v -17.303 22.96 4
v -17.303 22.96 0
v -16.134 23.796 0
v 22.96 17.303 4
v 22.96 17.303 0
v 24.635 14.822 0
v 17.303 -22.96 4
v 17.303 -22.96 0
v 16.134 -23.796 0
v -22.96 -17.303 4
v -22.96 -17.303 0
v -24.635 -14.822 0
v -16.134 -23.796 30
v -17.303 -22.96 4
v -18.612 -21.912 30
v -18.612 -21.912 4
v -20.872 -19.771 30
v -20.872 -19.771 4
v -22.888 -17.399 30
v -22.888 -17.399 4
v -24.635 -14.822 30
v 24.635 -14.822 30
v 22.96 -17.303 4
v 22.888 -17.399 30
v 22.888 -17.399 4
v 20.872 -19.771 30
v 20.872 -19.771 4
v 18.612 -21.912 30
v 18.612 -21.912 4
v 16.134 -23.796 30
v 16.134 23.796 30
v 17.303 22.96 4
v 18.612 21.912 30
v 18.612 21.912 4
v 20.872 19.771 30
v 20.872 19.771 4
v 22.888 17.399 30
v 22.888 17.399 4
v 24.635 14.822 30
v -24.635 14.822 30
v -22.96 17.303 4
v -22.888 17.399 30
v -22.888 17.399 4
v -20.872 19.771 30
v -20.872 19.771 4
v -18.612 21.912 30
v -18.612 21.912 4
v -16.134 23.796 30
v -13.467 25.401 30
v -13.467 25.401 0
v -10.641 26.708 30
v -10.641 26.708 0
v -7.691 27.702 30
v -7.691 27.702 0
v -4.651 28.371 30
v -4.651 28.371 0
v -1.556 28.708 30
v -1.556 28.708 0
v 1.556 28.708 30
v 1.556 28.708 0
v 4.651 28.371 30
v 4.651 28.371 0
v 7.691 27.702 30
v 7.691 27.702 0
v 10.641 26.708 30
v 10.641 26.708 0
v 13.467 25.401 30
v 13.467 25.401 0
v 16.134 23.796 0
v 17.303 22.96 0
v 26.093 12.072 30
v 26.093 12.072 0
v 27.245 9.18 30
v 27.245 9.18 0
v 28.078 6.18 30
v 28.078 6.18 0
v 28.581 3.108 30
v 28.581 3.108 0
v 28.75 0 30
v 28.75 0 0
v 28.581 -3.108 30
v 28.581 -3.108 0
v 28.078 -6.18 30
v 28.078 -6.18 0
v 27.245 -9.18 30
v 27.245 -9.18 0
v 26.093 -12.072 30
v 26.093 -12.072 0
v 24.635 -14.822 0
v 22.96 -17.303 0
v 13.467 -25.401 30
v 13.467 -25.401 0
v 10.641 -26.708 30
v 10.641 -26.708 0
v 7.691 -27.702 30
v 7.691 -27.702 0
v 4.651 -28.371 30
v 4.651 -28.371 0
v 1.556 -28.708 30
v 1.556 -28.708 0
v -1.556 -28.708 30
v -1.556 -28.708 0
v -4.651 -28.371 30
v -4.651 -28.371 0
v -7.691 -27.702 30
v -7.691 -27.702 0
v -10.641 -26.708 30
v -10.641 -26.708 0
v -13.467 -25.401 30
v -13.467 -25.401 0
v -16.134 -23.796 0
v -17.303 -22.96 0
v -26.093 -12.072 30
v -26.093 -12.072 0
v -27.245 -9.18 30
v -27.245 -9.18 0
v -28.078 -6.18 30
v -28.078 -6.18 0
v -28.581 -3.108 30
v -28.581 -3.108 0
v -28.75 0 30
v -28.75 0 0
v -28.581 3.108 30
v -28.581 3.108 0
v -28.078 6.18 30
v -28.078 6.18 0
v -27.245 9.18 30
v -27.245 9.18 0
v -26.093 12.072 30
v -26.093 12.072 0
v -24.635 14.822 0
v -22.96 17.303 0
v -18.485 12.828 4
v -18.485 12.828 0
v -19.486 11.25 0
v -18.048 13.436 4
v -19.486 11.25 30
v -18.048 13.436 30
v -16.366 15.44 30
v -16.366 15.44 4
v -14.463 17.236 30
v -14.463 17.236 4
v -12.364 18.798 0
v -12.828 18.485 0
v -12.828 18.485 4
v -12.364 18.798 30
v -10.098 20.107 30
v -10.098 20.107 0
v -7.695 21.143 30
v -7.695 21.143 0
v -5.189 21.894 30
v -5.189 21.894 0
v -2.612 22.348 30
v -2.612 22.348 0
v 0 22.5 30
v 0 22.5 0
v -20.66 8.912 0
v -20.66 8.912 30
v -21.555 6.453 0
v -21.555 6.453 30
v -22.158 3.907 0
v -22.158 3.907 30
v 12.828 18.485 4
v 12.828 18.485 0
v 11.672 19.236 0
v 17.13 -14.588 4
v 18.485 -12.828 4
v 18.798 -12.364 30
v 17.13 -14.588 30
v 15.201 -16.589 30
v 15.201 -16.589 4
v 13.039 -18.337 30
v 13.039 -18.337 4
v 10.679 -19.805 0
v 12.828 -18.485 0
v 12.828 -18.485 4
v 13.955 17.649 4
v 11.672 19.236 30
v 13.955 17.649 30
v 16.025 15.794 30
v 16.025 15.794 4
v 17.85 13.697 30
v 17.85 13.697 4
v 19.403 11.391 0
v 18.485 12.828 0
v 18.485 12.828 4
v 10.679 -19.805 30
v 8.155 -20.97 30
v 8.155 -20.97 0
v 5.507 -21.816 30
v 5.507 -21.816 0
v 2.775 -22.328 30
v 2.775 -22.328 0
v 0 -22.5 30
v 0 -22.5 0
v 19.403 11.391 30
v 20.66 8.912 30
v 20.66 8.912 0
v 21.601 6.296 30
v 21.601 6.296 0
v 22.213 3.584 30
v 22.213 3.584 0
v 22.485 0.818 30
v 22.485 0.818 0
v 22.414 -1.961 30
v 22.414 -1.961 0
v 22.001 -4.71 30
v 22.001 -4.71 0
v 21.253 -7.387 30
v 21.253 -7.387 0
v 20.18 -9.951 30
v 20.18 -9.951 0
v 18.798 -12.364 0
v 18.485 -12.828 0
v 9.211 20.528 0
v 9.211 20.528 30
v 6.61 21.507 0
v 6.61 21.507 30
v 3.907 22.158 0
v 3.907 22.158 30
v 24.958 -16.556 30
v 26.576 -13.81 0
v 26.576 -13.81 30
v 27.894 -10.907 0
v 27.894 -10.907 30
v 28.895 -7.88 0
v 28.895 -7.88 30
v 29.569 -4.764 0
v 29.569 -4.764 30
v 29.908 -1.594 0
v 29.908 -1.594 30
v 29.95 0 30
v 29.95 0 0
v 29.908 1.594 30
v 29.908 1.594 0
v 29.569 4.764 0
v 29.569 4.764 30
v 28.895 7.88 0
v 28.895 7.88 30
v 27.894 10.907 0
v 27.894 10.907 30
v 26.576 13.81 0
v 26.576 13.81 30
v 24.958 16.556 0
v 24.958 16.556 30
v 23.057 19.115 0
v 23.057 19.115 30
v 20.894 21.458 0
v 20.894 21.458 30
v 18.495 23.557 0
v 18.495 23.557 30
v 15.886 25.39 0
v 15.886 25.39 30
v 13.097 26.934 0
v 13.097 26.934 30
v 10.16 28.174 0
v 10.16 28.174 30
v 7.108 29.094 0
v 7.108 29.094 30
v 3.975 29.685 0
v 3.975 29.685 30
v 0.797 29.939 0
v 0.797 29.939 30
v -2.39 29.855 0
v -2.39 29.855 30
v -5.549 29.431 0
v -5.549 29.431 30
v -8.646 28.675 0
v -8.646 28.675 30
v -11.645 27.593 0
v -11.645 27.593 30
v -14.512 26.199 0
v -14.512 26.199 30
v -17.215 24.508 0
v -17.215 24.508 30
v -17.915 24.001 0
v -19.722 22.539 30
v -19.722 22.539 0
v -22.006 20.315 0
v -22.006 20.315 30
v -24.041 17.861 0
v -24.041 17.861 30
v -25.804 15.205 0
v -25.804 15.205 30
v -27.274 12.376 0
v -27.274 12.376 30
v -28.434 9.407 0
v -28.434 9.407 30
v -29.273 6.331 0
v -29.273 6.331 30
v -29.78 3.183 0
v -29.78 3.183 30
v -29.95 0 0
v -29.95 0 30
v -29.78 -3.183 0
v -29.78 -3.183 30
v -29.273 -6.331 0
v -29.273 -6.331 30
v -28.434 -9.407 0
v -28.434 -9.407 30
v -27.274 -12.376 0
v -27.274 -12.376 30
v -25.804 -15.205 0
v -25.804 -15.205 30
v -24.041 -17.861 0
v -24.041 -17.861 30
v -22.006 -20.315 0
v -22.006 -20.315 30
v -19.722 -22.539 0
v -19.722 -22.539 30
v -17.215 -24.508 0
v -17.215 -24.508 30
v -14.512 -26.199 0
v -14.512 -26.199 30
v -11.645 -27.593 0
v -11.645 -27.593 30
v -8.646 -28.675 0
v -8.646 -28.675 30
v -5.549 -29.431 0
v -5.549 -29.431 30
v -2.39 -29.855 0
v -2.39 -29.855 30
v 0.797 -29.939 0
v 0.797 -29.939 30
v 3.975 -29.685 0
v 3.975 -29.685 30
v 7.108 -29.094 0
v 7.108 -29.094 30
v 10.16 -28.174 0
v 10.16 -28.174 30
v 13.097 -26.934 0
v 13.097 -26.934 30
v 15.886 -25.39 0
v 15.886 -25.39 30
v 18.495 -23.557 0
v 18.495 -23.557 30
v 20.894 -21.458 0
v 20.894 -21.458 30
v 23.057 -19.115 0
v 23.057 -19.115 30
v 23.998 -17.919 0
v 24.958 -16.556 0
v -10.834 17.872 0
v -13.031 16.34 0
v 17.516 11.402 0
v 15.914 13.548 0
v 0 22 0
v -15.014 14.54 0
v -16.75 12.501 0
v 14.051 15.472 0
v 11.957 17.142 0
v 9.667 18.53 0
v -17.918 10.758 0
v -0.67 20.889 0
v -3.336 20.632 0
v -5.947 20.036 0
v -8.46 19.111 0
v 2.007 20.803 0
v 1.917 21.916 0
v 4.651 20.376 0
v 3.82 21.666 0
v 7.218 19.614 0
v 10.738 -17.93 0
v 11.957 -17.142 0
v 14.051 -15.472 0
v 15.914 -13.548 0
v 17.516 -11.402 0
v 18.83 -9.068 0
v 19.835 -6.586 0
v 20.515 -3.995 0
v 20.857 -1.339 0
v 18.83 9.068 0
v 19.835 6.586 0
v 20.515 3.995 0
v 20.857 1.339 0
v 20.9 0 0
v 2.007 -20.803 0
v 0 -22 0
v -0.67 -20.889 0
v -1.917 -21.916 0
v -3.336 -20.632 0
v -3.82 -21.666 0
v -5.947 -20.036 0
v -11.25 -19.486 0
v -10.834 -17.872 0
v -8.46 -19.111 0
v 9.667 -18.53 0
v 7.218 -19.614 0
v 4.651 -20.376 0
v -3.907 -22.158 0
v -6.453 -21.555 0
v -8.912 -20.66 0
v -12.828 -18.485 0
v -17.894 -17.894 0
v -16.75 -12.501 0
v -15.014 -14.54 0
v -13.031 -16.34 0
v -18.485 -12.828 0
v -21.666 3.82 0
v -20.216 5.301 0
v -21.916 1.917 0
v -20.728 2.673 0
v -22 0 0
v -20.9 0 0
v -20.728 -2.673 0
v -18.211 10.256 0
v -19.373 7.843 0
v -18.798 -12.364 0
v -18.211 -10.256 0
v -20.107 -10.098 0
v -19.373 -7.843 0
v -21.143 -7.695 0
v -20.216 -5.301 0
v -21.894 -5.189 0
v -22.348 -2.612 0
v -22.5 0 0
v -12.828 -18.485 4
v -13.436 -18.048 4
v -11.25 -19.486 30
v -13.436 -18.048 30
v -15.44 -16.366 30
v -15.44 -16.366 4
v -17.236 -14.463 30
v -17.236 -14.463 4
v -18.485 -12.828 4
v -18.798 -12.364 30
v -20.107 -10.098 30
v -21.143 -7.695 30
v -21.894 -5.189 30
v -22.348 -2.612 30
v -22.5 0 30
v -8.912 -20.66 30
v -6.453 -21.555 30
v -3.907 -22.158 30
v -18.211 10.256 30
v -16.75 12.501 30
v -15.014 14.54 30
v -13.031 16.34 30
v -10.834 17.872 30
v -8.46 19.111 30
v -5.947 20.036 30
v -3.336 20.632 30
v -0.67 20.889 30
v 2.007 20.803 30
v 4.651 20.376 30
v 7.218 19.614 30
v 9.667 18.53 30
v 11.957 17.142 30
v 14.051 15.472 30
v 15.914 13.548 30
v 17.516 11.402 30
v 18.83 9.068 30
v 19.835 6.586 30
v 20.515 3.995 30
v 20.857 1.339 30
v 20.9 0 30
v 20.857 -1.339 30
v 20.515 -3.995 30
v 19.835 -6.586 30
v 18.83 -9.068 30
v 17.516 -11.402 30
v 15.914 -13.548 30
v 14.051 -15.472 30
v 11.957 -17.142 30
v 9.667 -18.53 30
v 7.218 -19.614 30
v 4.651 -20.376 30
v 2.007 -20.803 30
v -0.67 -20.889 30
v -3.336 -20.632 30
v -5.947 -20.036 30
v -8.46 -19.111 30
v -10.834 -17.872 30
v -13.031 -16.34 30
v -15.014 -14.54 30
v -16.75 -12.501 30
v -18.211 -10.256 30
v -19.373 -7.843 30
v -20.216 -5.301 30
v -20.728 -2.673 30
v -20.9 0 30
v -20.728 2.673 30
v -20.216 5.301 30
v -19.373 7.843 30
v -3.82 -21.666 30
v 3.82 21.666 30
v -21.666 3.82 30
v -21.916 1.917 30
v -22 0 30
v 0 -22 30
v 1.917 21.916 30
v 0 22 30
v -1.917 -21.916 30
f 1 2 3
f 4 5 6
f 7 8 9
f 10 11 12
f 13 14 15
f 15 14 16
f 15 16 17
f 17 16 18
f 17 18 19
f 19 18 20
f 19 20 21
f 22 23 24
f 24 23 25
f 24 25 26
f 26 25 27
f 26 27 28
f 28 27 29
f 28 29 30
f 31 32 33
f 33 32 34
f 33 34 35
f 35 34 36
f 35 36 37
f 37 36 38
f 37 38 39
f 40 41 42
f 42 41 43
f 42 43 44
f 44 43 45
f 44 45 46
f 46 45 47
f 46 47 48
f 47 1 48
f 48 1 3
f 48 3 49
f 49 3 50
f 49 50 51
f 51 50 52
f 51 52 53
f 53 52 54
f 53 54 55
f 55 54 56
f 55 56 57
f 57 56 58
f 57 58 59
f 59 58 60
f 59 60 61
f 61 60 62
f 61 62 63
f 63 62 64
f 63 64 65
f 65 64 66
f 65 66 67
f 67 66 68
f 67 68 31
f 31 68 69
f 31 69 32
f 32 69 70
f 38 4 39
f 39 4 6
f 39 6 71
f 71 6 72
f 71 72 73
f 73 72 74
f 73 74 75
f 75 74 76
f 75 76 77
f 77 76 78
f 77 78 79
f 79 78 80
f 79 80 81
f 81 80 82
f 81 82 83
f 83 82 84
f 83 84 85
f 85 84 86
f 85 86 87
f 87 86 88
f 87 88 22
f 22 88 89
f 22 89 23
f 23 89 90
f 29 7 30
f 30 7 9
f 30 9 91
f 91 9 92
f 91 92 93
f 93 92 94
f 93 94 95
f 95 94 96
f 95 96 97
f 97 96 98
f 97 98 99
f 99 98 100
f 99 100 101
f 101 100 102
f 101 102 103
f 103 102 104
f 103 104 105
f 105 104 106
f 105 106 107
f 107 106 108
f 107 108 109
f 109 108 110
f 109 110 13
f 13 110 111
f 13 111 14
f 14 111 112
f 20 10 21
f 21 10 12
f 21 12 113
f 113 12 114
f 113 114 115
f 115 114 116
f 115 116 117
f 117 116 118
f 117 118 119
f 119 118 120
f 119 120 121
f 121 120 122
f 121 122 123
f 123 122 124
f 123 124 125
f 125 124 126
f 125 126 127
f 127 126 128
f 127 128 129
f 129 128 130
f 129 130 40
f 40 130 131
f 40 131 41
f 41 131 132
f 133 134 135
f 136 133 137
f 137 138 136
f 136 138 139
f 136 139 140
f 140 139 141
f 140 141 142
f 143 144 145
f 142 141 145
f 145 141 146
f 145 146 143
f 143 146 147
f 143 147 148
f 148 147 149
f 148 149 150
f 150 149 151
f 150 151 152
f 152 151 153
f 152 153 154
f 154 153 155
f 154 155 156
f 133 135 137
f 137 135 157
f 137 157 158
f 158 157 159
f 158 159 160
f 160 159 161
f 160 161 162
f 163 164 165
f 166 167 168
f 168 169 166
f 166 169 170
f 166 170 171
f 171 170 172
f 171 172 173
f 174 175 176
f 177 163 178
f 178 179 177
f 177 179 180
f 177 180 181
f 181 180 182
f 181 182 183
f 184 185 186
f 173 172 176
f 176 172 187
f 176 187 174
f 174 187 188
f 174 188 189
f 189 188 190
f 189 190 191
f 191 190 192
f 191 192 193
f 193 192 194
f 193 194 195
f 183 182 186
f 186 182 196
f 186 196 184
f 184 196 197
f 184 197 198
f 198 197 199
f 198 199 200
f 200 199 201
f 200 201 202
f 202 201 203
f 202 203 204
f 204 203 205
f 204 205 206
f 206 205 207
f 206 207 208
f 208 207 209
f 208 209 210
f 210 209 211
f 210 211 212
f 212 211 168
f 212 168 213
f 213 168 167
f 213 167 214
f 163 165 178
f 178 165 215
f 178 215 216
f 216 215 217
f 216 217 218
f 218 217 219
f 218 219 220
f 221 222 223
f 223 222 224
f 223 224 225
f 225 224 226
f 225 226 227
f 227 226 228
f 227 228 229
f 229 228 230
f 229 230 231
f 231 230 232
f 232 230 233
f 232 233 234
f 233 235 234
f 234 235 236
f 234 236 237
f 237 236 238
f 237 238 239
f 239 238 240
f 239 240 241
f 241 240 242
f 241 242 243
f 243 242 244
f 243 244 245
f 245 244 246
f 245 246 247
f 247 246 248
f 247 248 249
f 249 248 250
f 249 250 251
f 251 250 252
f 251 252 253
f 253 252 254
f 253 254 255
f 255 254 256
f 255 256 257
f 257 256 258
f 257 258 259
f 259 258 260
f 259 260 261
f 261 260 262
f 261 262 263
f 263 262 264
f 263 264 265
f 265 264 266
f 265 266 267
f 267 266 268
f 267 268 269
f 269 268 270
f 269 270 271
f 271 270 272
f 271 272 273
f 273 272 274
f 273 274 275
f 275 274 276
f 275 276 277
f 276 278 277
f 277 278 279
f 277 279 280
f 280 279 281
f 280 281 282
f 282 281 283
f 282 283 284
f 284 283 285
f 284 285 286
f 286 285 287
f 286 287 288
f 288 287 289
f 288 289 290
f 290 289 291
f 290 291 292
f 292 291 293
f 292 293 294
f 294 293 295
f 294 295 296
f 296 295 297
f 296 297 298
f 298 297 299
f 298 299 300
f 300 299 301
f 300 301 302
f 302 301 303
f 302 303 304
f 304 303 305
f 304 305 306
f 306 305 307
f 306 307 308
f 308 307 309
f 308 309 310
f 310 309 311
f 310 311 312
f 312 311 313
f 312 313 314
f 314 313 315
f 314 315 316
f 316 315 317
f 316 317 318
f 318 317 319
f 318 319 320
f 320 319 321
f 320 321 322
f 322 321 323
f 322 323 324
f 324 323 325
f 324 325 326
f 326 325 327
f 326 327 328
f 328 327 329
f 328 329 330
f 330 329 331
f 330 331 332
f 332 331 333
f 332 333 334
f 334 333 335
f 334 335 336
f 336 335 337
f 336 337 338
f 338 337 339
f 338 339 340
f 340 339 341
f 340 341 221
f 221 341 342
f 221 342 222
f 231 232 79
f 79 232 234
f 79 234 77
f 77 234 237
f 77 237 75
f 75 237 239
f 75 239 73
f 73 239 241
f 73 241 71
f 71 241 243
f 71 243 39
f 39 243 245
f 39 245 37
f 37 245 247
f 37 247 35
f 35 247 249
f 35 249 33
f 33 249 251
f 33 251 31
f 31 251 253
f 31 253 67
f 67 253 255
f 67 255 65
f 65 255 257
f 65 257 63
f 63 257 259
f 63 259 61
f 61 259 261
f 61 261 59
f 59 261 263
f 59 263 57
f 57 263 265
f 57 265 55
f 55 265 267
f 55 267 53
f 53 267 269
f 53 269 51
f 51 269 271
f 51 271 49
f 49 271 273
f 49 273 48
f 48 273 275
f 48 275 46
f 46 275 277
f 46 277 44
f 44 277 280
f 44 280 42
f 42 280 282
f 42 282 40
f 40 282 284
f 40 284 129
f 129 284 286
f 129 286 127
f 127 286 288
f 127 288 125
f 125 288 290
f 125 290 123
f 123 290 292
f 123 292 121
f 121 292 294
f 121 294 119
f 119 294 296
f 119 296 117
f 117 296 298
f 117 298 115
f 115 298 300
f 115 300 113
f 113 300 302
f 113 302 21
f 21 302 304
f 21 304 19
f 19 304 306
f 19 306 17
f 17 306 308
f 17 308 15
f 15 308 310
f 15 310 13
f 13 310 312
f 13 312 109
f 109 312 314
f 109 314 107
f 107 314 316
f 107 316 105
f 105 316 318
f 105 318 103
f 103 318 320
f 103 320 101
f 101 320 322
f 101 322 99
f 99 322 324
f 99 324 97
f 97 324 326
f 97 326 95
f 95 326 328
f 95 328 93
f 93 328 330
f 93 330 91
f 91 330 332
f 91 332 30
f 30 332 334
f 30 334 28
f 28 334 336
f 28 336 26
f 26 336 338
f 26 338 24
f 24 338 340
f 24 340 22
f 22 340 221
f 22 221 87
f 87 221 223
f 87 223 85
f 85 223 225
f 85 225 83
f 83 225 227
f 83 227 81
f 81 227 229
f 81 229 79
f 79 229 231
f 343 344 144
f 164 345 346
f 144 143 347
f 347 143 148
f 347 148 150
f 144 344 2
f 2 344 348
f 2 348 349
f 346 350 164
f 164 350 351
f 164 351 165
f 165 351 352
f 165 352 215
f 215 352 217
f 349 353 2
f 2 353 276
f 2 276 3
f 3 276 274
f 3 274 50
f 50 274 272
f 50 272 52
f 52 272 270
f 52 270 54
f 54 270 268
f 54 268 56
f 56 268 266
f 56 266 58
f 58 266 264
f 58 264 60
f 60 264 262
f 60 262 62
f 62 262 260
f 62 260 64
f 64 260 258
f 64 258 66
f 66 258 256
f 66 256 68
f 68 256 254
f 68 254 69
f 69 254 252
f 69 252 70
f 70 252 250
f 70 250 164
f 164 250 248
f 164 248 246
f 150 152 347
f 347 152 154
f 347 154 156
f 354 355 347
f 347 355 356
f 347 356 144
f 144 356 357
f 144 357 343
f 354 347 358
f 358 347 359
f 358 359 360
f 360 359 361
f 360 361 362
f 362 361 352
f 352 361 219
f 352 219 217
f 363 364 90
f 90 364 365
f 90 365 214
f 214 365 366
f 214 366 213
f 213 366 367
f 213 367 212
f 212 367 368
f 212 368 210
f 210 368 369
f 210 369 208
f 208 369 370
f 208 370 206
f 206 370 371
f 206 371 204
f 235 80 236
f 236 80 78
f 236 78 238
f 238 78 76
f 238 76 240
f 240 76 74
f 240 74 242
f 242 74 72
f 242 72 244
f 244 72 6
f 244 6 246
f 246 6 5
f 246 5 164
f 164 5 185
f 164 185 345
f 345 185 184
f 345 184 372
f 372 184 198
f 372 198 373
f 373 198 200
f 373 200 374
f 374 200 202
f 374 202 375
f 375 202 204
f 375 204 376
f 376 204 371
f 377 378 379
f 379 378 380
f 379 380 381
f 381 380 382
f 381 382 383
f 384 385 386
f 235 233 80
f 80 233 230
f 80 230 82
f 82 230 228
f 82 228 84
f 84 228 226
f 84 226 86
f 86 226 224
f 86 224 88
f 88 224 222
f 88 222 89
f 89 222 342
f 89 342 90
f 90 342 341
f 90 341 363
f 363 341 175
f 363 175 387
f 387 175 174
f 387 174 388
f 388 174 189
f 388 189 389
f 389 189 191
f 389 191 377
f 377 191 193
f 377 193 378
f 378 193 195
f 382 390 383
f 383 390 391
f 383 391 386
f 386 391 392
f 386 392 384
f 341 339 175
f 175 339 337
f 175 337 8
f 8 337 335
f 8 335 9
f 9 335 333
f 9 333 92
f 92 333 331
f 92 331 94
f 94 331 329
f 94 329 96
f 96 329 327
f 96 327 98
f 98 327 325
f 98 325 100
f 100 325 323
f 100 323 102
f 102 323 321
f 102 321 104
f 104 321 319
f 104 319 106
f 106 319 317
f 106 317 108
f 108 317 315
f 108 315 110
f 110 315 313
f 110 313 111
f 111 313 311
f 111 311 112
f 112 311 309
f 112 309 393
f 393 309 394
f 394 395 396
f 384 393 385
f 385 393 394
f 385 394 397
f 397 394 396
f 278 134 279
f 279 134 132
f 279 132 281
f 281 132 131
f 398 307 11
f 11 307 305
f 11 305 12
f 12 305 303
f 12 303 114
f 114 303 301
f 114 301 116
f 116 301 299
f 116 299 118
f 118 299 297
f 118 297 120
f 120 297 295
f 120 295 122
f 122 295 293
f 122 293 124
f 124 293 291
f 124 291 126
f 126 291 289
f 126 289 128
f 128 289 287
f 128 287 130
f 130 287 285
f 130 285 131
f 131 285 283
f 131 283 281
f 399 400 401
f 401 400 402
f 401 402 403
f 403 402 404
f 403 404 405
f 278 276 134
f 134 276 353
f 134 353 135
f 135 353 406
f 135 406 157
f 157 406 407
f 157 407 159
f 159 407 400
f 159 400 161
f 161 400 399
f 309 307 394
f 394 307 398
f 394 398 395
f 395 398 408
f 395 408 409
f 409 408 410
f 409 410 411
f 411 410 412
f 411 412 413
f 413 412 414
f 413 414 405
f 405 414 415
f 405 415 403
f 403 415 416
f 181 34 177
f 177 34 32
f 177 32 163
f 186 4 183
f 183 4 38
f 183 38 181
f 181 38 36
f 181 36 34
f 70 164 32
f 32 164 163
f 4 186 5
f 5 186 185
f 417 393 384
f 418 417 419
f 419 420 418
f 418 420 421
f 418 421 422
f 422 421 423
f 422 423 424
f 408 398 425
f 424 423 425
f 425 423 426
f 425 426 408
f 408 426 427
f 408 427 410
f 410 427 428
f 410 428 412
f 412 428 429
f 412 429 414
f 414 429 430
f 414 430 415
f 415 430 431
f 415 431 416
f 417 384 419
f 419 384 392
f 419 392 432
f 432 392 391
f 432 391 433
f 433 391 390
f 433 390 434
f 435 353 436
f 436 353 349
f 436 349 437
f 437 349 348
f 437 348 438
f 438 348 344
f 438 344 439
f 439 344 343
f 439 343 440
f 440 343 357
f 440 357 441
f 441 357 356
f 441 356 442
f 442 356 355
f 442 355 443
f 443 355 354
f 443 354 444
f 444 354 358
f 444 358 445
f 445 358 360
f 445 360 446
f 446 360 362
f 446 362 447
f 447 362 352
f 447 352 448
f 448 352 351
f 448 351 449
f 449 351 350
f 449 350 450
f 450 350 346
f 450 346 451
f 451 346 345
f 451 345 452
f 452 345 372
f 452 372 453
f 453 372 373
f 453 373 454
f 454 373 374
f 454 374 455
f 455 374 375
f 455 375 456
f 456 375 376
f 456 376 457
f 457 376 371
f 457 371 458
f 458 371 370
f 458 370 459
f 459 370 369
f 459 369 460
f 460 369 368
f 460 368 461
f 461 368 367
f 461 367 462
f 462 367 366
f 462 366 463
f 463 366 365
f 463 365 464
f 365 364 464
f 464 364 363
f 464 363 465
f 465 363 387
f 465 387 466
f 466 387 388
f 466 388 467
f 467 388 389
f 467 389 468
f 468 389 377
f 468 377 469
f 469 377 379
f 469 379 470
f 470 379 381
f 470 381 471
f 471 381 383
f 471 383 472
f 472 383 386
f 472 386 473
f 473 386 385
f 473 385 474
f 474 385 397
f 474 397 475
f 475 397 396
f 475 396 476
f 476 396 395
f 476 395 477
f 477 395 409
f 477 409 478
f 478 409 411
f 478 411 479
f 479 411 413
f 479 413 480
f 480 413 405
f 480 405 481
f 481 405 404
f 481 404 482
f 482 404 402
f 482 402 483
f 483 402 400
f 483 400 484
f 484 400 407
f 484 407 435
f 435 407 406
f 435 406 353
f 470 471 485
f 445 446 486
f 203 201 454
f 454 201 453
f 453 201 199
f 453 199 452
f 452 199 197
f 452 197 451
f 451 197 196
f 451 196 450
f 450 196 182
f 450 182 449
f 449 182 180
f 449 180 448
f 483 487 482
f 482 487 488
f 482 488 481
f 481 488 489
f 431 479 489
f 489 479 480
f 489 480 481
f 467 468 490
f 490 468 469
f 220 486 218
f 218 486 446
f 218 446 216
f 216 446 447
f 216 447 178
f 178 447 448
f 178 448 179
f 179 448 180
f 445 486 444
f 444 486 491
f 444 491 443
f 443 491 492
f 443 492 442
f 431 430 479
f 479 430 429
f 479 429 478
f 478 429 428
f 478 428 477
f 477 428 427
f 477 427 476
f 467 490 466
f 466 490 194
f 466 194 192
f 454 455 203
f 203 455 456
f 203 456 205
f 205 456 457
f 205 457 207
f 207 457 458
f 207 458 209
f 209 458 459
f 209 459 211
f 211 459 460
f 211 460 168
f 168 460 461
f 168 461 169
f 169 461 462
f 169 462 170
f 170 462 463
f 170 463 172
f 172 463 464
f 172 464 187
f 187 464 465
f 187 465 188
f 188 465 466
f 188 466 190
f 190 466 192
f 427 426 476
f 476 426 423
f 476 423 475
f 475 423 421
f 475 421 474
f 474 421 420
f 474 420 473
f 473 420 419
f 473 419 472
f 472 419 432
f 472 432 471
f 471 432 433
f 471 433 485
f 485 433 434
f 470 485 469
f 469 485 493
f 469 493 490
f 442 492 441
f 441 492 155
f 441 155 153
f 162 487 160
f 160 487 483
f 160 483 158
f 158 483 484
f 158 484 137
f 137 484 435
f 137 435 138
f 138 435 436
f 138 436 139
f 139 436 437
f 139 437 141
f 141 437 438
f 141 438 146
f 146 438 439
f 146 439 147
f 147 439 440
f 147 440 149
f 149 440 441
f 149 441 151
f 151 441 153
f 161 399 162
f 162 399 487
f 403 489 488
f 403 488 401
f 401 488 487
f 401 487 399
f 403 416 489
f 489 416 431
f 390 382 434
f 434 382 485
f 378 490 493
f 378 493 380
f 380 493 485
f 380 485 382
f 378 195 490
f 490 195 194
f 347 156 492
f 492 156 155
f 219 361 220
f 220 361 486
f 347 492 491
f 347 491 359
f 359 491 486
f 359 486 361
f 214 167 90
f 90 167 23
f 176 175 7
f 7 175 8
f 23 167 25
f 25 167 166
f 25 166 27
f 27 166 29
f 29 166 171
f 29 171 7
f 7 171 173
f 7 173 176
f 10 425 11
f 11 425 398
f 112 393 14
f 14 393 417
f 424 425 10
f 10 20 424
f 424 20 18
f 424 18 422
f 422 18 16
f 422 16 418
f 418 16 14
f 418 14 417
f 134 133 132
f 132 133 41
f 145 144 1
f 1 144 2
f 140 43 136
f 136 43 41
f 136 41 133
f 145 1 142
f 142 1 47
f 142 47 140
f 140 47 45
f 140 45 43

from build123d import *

# Parameters (mm, degrees)
CROQUIS1_R                = 22.5
CROQUIS1_R_2              = 20.9
SALIENTE_EXTRUIR1_DEPTH   = 30
CROQUIS1_R_3              = 29.95
CROQUIS1_R_4              = 28.75
SALIENTE_EXTRUIR1_2_DEPTH = 30
CORTAR_EXTRUIR1_DEPTH     = 30
SALIENTE_EXTRUIR2_DEPTH   = 4


with BuildPart() as part:
    # Croquis1 → Saliente-Extruir1 (new body)
    with BuildSketch(Plane.XY):
        Circle(CROQUIS1_R)
        Circle(CROQUIS1_R_2, mode=Mode.SUBTRACT)
    extrude(amount=SALIENTE_EXTRUIR1_DEPTH)

    # Croquis2 → Cortar-Extruir1 (cut)
    with BuildSketch(Plane.XY.offset(30)):
        with BuildLine():
            ThreePointArc((3.907083998, 22.158174443), (1.961004212, 22.414380707), (0, 22.5))
            Line((0, 22.5), (0, 21.999786926))
            ThreePointArc((0, 21.999786926), (1.91740777, 21.916071095), (3.820222909, 21.66556073))
            Line((3.820222909, 21.66556073), (3.907083998, 22.158174443))
        make_face()
        with BuildLine():
            ThreePointArc((-3.820222909, -21.66556073), (-1.91740777, -21.916071095), (0, -21.999786926))
            Line((0, -21.999786926), (0, -22.5))
            ThreePointArc((0, -22.5), (-1.961004212, -22.414380707), (-3.907083998, -22.158174443))
            Line((-3.907083998, -22.158174443), (-3.820222909, -21.66556073))
        make_face()
        with BuildLine():
            ThreePointArc((-22.158174443, 3.907083998), (-22.414380707, 1.961004212), (-22.5, 0))
            Line((-22.5, 0), (-21.999786926, 0))
            ThreePointArc((-21.999786926, 0), (-21.916071095, 1.91740777), (-21.66556073, 3.820222909))
            Line((-21.66556073, 3.820222909), (-22.158174443, 3.907083998))
        make_face()
    extrude(amount=-CORTAR_EXTRUIR1_DEPTH, mode=Mode.SUBTRACT)



with BuildPart() as body_2:
    # Croquis1 → Saliente-Extruir1 2 (new body)
    with BuildSketch(Plane.XY):
        Circle(CROQUIS1_R_3)
        Circle(CROQUIS1_R_4, mode=Mode.SUBTRACT)
    extrude(amount=SALIENTE_EXTRUIR1_2_DEPTH)


with BuildPart() as part_1:
    add(part.part)

    add(body_2.part)  # Saliente-Extruir2 merges body 2
    # Croquis3 → Saliente-Extruir2 (add)
    with BuildSketch(Plane(origin=(0, 0, 0), x_dir=(-1, 0, 0), z_dir=(0, 0, -1))):
        with BuildLine():
            ThreePointArc((-18.484895437, 12.828041187), (-15.909902577, 15.909902577), (-12.828041187, 18.484895437))
            Line((-12.828041187, 18.484895437), (-18.159694516, 23.816548765))
            Line((-18.159694516, 23.816548765), (-23.816548765, 18.159694516))
            Line((-23.816548765, 18.159694516), (-18.484895437, 12.828041187))
        make_face()
        with BuildLine():
            Line((-18.159694516, -23.816548765), (-12.828041187, -18.484895437))
            ThreePointArc((-12.828041187, -18.484895437), (-15.909902577, -15.909902577), (-18.484895437, -12.828041187))
            Line((-18.484895437, -12.828041187), (-23.816548765, -18.159694516))
            Line((-23.816548765, -18.159694516), (-18.159694516, -23.816548765))
        make_face()
        with BuildLine():
            Line((23.816548765, -18.159694516), (18.484895437, -12.828041187))
            ThreePointArc((18.484895437, -12.828041187), (15.909902577, -15.909902577), (12.828041187, -18.484895437))
            Line((12.828041187, -18.484895437), (18.159694516, -23.816548765))
            Line((18.159694516, -23.816548765), (23.816548765, -18.159694516))
        make_face()
        with BuildLine():
            Line((18.484895437, 12.828041187), (23.816548765, 18.159694516))
            Line((23.816548765, 18.159694516), (18.159694516, 23.816548765))
            Line((18.159694516, 23.816548765), (12.828041187, 18.484895437))
            ThreePointArc((12.828041187, 18.484895437), (15.909902577, 15.909902577), (18.484895437, 12.828041187))
        make_face()
    extrude(amount=-SALIENTE_EXTRUIR2_DEPTH)


solid = part_1.part
